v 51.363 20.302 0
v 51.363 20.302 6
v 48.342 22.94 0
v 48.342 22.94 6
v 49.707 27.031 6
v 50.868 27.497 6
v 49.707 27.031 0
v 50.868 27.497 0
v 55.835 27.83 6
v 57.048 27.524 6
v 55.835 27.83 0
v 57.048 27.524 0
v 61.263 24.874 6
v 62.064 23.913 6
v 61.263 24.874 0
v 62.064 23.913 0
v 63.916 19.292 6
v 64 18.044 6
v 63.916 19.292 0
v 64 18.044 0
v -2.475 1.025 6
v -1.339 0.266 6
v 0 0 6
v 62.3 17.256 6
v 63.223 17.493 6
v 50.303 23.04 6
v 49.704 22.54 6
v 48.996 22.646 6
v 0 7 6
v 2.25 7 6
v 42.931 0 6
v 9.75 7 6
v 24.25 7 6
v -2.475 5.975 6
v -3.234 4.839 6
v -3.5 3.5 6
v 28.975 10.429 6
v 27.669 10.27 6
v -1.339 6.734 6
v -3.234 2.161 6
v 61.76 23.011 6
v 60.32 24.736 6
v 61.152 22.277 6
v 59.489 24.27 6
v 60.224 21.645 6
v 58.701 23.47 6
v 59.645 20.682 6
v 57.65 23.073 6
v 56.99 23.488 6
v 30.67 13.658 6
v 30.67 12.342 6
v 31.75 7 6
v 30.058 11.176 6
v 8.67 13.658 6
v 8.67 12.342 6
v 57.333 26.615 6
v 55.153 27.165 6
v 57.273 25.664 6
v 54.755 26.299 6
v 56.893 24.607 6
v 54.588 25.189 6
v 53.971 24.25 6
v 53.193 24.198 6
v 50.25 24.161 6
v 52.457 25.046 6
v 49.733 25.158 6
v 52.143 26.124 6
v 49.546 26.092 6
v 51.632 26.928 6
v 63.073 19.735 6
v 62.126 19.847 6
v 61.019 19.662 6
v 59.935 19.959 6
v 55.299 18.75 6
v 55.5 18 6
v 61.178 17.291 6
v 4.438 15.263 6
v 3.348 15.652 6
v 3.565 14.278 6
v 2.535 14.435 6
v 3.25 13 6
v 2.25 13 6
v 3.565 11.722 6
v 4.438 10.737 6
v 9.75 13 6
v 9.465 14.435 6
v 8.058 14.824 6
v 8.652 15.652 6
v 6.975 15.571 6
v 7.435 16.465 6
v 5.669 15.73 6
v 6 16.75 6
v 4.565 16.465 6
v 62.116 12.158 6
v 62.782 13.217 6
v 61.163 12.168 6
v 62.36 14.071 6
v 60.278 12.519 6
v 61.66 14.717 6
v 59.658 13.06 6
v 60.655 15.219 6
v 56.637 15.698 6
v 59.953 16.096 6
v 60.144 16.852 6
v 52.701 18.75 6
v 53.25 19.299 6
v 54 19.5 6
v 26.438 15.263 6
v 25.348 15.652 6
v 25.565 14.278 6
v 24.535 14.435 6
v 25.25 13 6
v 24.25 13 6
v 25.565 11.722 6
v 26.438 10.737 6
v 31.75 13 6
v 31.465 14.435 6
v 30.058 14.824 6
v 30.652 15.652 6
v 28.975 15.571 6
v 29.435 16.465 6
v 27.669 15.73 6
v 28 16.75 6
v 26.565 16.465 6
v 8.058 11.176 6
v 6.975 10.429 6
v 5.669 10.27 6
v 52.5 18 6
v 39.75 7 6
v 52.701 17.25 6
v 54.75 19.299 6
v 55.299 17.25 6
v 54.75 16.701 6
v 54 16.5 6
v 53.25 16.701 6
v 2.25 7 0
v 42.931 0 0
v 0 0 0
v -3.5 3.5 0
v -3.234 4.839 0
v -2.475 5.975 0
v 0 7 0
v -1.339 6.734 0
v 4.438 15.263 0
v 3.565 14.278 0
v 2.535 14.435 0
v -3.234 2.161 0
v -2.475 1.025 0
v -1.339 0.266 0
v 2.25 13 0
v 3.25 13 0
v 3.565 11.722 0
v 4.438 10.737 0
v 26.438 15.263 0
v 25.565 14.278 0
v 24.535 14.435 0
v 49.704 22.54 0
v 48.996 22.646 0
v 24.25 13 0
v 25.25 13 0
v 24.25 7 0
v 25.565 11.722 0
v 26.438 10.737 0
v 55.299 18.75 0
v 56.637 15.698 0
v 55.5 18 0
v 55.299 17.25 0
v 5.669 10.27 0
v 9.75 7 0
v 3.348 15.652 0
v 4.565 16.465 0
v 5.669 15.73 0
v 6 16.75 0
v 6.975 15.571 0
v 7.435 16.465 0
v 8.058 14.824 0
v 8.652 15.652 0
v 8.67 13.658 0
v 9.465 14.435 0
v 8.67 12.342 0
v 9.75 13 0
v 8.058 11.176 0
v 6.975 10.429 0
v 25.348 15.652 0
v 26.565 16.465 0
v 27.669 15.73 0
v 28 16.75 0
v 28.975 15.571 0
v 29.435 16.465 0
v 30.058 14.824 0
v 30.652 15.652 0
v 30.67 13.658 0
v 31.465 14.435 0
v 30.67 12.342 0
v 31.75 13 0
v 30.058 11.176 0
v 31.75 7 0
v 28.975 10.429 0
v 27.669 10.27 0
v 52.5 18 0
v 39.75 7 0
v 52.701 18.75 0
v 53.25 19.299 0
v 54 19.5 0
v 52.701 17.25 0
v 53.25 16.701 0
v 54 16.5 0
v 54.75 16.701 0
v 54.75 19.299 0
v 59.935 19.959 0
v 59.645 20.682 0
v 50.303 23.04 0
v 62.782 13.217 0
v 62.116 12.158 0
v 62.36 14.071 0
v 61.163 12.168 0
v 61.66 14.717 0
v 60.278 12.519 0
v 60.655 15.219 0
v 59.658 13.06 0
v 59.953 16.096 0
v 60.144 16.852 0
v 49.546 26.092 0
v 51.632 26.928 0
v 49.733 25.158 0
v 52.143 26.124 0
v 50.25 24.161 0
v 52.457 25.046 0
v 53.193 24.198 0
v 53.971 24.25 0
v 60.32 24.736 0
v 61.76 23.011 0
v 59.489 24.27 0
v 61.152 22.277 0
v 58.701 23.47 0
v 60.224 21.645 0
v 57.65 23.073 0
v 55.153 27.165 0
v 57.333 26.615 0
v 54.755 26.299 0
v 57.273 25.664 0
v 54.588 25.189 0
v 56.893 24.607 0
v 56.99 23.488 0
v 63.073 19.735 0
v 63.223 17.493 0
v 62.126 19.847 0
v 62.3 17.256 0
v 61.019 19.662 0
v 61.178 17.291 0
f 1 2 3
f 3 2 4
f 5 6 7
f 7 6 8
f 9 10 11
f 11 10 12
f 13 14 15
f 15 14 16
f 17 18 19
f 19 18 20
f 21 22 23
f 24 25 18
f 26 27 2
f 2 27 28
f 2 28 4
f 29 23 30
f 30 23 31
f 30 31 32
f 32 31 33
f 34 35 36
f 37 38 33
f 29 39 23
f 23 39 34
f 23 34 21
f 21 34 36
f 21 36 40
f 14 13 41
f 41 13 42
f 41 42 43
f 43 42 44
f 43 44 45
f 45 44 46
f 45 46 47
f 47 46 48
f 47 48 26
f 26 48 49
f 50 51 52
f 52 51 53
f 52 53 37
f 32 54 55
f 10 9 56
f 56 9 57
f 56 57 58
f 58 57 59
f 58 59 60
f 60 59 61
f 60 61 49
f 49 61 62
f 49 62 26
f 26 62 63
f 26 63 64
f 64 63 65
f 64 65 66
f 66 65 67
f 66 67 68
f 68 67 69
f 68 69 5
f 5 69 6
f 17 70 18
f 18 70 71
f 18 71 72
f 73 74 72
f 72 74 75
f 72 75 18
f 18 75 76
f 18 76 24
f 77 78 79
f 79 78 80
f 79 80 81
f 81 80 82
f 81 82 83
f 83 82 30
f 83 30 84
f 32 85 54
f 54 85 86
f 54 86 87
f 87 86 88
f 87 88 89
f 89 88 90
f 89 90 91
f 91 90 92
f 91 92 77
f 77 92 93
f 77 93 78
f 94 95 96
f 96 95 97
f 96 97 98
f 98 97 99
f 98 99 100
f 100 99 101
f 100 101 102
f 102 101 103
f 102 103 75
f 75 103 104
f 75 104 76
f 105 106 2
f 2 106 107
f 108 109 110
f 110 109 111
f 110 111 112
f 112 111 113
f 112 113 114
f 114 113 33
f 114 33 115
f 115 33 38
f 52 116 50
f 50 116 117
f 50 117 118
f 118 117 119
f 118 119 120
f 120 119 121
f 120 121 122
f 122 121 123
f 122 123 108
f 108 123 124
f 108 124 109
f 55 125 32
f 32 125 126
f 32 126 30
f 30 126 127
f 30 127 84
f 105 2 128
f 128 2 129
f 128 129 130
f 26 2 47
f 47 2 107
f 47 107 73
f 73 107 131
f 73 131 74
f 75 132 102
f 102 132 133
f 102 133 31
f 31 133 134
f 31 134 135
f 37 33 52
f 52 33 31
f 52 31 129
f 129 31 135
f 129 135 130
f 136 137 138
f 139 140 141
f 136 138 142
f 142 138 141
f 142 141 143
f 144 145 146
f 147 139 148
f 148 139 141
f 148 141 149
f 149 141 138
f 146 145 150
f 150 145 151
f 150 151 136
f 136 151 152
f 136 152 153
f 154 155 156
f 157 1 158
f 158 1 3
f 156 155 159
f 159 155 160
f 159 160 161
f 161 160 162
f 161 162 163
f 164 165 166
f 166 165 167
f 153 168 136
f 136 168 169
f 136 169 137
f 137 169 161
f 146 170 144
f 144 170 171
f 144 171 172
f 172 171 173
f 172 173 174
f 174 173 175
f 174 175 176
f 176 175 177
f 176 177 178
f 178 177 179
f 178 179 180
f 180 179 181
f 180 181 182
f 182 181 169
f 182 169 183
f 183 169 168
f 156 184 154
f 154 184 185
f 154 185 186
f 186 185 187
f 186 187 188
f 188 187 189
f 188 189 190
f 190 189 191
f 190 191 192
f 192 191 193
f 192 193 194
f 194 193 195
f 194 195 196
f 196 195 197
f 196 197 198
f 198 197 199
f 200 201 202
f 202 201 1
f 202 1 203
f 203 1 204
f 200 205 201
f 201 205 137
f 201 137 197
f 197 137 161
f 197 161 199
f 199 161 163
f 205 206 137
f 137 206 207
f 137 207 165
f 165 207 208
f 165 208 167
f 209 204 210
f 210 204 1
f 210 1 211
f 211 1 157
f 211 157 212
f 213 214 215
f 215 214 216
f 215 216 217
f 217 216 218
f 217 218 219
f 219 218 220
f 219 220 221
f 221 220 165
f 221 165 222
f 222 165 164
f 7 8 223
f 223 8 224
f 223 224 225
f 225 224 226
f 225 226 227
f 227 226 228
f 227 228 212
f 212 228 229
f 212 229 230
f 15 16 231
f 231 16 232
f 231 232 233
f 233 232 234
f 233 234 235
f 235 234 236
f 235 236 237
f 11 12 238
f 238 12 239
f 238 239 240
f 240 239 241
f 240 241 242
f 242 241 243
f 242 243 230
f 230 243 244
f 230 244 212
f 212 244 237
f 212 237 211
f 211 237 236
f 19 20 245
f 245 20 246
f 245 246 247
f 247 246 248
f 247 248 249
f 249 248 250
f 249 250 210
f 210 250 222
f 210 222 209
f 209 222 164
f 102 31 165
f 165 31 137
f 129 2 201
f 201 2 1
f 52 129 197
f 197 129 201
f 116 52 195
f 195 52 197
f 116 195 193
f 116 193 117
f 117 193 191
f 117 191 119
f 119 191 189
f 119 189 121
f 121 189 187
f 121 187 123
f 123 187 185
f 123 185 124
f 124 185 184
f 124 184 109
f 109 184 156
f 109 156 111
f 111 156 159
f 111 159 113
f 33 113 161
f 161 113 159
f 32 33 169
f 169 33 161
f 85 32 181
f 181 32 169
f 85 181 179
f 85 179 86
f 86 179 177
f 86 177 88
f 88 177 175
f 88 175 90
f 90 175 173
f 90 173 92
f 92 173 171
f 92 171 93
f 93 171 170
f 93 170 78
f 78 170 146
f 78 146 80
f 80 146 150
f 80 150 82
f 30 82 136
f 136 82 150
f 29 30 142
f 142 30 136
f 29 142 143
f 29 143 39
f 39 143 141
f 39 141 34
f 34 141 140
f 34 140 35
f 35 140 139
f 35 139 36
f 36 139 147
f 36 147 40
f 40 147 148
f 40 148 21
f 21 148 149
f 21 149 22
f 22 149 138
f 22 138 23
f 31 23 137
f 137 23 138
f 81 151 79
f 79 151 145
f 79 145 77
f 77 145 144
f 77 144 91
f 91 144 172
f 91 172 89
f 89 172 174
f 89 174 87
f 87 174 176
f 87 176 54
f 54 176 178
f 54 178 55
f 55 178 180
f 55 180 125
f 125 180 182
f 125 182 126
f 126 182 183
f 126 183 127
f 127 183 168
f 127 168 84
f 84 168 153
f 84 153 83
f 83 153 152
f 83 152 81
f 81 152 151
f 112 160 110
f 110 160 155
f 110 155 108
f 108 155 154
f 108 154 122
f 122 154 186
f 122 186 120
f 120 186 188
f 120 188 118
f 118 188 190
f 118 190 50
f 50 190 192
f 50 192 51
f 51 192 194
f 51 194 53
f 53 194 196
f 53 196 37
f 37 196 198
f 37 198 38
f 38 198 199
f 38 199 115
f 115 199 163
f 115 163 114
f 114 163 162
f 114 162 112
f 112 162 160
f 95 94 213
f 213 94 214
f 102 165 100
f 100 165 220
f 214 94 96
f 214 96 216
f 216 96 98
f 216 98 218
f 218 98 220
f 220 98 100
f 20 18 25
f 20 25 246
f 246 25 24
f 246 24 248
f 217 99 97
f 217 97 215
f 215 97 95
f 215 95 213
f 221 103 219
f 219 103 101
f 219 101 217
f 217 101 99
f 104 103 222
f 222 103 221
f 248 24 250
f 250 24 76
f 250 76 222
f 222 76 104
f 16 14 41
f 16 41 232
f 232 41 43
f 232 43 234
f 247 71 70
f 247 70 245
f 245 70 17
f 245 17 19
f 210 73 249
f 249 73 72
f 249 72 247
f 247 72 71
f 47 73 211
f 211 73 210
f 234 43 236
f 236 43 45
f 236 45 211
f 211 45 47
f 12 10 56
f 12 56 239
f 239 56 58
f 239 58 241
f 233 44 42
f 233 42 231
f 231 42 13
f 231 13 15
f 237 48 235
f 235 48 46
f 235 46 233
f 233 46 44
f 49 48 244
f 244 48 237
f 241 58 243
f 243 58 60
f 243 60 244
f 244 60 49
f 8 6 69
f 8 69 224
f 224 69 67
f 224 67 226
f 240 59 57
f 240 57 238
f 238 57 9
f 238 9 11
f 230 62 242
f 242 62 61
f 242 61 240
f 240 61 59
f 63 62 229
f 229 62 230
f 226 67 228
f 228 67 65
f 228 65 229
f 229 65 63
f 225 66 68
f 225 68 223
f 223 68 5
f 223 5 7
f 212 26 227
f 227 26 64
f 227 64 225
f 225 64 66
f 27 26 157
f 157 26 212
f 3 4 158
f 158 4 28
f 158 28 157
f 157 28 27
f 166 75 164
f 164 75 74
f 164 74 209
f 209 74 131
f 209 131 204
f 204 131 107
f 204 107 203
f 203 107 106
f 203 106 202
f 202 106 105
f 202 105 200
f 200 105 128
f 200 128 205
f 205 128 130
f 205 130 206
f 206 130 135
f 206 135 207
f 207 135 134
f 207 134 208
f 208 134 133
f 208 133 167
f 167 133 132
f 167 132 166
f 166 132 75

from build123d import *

# Parameters (mm, degrees)
CROQUIS2_R              = 2.75
SALIENTE_EXTRUIR1_DEPTH = 6
SALIENTE_EXTRUIR2_START = -6
SALIENTE_EXTRUIR2_DEPTH = 6
CORTAR_EXTRUIR1_DEPTH   = 71.114192572
CROQUIS5_R              = 1.5
CORTAR_EXTRUIR2_DEPTH   = 71.046461519


with BuildPart() as part:
    # Croquis2 → Saliente-Extruir1 (new body)
    with BuildSketch(Plane.XY):
        with BuildLine():
            Line((0, 0), (42.930999161, 0))
            Line((42.930999161, 0), (56.636539912, 15.69811875))
            ThreePointArc((56.636539912, 15.69811875), (56.30188125, 20.636539912), (51.363460088, 20.30188125))
            Line((51.363460088, 20.30188125), (39.75, 7))
            Line((39.75, 7), (31.75, 7))
            Line((31.75, 7), (31.75, 13))
            ThreePointArc((31.75, 13), (28, 16.75), (24.25, 13))
            Line((24.25, 13), (24.25, 7))
            Line((24.25, 7), (9.75, 7))
            Line((9.75, 7), (9.75, 13))
            ThreePointArc((9.75, 13), (6, 16.75), (2.25, 13))
            Line((2.25, 13), (2.25, 7))
            Line((2.25, 7), (0, 7))
            ThreePointArc((0, 7), (-3.5, 3.5), (0, 0))
        make_face()
        with Locations(Location((6, 13, 0), (0, 0, 180))):
            Circle(CROQUIS2_R, mode=Mode.SUBTRACT)
        with Locations(Location((28, 13, 0), (0, 0, 180))):
            Circle(CROQUIS2_R, mode=Mode.SUBTRACT)
    extrude(amount=SALIENTE_EXTRUIR1_DEPTH)

    # Croquis3 → Saliente-Extruir2 (add)
    with BuildSketch(Plane.XY.offset(6).offset(SALIENTE_EXTRUIR2_START)):
        with BuildLine():
            Line((51.363460088, 20.30188125), (46.467028822, 24.576803572))
            ThreePointArc((46.467028822, 24.576803572), (60.576803572, 25.532971178), (61.532971178, 11.423196428))
            Line((61.532971178, 11.423196428), (56.636539912, 15.69811875))
            ThreePointArc((56.636539912, 15.69811875), (56.30188125, 20.636539912), (51.363460088, 20.30188125))
        make_face()
    extrude(amount=SALIENTE_EXTRUIR2_DEPTH)

    # Croquis4 → Cortar-Extruir1 (cut, through all)
    with BuildSketch(Plane.XY.offset(6)):
        with BuildLine():
            ThreePointArc((49.70655821, 27.031409502), (47.593627222, 25.678436548), (45.883978244, 23.842105002))
            ThreePointArc((45.883978244, 23.842105002), (46.836617605, 23.831529671), (47.722398468, 23.480779257))
            ThreePointArc((47.722398468, 23.480779257), (48.610097364, 22.792823599), (49.70436623, 22.540102483))
            ThreePointArc((49.70436623, 22.540102483), (49.995888886, 22.799176411), (50.303002079, 23.03956411))
            ThreePointArc((50.303002079, 23.03956411), (50.250428059, 24.161405581), (49.732651549, 25.157999682))
            ThreePointArc((49.732651549, 25.157999682), (49.54628016, 26.09229048), (49.70655821, 27.031409502))
        make_face()
        with BuildLine():
            ThreePointArc((55.83506194, 27.830185536), (53.330407314, 27.977557098), (50.867903635, 27.496840125))
            ThreePointArc((50.867903635, 27.496840125), (51.632389044, 26.928337135), (52.142834895, 26.123925161))
            ThreePointArc((52.142834895, 26.123925161), (52.456628197, 25.045581024), (53.193364562, 24.197930244))
            ThreePointArc((53.193364562, 24.197930244), (53.581491179, 24.236172737), (53.971247316, 24.250133864))
            ThreePointArc((53.971247316, 24.250133864), (54.588115912, 25.188624914), (54.755009231, 26.299227874))
            ThreePointArc((54.755009231, 26.299227874), (55.153393963, 27.164631362), (55.83506194, 27.830185536))
        make_face()
        with BuildLine():
            ThreePointArc((61.262634381, 24.874164811), (59.322949053, 26.46558996), (57.048183382, 27.524105106))
            ThreePointArc((57.048183382, 27.524105106), (57.332507396, 26.614823277), (57.272645269, 25.664007776))
            ThreePointArc((57.272645269, 25.664007776), (56.892674603, 24.607165968), (56.990470215, 23.488359312))
            ThreePointArc((56.990470215, 23.488359312), (57.326949617, 23.291163037), (57.6504751, 23.073364917))
            ThreePointArc((57.6504751, 23.073364917), (58.701163476, 23.470033862), (59.488979049, 24.270433099))
            ThreePointArc((59.488979049, 24.270433099), (60.319950474, 24.736394558), (61.262634381, 24.874164811))
        make_face()
        with BuildLine():
            ThreePointArc((63.916127336, 19.292446773), (63.282305175, 21.720055193), (62.064160681, 23.913485649))
            ThreePointArc((62.064160681, 23.913485649), (61.75972119, 23.010739734), (61.152416384, 22.276699911))
            ThreePointArc((61.152416384, 22.276699911), (60.223817628, 21.645038081), (59.645317888, 20.682421665))
            ThreePointArc((59.645317888, 20.682421665), (59.80162638, 20.325108897), (59.935345471, 19.958743009))
            ThreePointArc((59.935345471, 19.958743009), (61.018526379, 19.662075794), (62.126345433, 19.846546004))
            ThreePointArc((62.126345433, 19.846546004), (63.072500712, 19.735083994), (63.916127336, 19.292446773))
        make_face()
        with BuildLine():
            ThreePointArc((62.781996685, 13.217057996), (63.696136214, 15.553585782), (63.99990269, 18.044115666))
            ThreePointArc((63.99990269, 18.044115666), (63.222985233, 17.492723921), (62.300207541, 17.255838039))
            ThreePointArc((62.300207541, 17.255838039), (61.177673859, 17.290629538), (60.143846005, 16.851890114))
            ThreePointArc((60.143846005, 16.851890114), (60.060279056, 16.470942186), (59.953115608, 16.095947847))
            ThreePointArc((59.953115608, 16.095947847), (60.655050756, 15.219261265), (61.659724067, 14.717341097))
            ThreePointArc((61.659724067, 14.717341097), (62.359664041, 14.071030318), (62.781996685, 13.217057996))
        make_face()
        with BuildLine():
            ThreePointArc((58.29344179, 8.968590498), (60.406372778, 10.321563452), (62.116021756, 12.157894998))
            ThreePointArc((62.116021756, 12.157894998), (61.163382395, 12.168470329), (60.277601532, 12.519220743))
            ThreePointArc((60.277601532, 12.519220743), (59.389902636, 13.207176401), (58.29563377, 13.459897517))
            ThreePointArc((58.29563377, 13.459897517), (58.004111114, 13.200823589), (57.696997921, 12.96043589))
            ThreePointArc((57.696997921, 12.96043589), (57.749571941, 11.838594419), (58.267348451, 10.842000318))
            ThreePointArc((58.267348451, 10.842000318), (58.45371984, 9.90770952), (58.29344179, 8.968590498))
        make_face()
    extrude(amount=-CORTAR_EXTRUIR1_DEPTH, mode=Mode.SUBTRACT)

    # Croquis5 → Cortar-Extruir2 (cut, through all)
    with BuildSketch(Plane.XY.offset(6)):
        with Locations((54, 18)):
            Circle(CROQUIS5_R)
    extrude(amount=-CORTAR_EXTRUIR2_DEPTH, mode=Mode.SUBTRACT)


solid = part.part
